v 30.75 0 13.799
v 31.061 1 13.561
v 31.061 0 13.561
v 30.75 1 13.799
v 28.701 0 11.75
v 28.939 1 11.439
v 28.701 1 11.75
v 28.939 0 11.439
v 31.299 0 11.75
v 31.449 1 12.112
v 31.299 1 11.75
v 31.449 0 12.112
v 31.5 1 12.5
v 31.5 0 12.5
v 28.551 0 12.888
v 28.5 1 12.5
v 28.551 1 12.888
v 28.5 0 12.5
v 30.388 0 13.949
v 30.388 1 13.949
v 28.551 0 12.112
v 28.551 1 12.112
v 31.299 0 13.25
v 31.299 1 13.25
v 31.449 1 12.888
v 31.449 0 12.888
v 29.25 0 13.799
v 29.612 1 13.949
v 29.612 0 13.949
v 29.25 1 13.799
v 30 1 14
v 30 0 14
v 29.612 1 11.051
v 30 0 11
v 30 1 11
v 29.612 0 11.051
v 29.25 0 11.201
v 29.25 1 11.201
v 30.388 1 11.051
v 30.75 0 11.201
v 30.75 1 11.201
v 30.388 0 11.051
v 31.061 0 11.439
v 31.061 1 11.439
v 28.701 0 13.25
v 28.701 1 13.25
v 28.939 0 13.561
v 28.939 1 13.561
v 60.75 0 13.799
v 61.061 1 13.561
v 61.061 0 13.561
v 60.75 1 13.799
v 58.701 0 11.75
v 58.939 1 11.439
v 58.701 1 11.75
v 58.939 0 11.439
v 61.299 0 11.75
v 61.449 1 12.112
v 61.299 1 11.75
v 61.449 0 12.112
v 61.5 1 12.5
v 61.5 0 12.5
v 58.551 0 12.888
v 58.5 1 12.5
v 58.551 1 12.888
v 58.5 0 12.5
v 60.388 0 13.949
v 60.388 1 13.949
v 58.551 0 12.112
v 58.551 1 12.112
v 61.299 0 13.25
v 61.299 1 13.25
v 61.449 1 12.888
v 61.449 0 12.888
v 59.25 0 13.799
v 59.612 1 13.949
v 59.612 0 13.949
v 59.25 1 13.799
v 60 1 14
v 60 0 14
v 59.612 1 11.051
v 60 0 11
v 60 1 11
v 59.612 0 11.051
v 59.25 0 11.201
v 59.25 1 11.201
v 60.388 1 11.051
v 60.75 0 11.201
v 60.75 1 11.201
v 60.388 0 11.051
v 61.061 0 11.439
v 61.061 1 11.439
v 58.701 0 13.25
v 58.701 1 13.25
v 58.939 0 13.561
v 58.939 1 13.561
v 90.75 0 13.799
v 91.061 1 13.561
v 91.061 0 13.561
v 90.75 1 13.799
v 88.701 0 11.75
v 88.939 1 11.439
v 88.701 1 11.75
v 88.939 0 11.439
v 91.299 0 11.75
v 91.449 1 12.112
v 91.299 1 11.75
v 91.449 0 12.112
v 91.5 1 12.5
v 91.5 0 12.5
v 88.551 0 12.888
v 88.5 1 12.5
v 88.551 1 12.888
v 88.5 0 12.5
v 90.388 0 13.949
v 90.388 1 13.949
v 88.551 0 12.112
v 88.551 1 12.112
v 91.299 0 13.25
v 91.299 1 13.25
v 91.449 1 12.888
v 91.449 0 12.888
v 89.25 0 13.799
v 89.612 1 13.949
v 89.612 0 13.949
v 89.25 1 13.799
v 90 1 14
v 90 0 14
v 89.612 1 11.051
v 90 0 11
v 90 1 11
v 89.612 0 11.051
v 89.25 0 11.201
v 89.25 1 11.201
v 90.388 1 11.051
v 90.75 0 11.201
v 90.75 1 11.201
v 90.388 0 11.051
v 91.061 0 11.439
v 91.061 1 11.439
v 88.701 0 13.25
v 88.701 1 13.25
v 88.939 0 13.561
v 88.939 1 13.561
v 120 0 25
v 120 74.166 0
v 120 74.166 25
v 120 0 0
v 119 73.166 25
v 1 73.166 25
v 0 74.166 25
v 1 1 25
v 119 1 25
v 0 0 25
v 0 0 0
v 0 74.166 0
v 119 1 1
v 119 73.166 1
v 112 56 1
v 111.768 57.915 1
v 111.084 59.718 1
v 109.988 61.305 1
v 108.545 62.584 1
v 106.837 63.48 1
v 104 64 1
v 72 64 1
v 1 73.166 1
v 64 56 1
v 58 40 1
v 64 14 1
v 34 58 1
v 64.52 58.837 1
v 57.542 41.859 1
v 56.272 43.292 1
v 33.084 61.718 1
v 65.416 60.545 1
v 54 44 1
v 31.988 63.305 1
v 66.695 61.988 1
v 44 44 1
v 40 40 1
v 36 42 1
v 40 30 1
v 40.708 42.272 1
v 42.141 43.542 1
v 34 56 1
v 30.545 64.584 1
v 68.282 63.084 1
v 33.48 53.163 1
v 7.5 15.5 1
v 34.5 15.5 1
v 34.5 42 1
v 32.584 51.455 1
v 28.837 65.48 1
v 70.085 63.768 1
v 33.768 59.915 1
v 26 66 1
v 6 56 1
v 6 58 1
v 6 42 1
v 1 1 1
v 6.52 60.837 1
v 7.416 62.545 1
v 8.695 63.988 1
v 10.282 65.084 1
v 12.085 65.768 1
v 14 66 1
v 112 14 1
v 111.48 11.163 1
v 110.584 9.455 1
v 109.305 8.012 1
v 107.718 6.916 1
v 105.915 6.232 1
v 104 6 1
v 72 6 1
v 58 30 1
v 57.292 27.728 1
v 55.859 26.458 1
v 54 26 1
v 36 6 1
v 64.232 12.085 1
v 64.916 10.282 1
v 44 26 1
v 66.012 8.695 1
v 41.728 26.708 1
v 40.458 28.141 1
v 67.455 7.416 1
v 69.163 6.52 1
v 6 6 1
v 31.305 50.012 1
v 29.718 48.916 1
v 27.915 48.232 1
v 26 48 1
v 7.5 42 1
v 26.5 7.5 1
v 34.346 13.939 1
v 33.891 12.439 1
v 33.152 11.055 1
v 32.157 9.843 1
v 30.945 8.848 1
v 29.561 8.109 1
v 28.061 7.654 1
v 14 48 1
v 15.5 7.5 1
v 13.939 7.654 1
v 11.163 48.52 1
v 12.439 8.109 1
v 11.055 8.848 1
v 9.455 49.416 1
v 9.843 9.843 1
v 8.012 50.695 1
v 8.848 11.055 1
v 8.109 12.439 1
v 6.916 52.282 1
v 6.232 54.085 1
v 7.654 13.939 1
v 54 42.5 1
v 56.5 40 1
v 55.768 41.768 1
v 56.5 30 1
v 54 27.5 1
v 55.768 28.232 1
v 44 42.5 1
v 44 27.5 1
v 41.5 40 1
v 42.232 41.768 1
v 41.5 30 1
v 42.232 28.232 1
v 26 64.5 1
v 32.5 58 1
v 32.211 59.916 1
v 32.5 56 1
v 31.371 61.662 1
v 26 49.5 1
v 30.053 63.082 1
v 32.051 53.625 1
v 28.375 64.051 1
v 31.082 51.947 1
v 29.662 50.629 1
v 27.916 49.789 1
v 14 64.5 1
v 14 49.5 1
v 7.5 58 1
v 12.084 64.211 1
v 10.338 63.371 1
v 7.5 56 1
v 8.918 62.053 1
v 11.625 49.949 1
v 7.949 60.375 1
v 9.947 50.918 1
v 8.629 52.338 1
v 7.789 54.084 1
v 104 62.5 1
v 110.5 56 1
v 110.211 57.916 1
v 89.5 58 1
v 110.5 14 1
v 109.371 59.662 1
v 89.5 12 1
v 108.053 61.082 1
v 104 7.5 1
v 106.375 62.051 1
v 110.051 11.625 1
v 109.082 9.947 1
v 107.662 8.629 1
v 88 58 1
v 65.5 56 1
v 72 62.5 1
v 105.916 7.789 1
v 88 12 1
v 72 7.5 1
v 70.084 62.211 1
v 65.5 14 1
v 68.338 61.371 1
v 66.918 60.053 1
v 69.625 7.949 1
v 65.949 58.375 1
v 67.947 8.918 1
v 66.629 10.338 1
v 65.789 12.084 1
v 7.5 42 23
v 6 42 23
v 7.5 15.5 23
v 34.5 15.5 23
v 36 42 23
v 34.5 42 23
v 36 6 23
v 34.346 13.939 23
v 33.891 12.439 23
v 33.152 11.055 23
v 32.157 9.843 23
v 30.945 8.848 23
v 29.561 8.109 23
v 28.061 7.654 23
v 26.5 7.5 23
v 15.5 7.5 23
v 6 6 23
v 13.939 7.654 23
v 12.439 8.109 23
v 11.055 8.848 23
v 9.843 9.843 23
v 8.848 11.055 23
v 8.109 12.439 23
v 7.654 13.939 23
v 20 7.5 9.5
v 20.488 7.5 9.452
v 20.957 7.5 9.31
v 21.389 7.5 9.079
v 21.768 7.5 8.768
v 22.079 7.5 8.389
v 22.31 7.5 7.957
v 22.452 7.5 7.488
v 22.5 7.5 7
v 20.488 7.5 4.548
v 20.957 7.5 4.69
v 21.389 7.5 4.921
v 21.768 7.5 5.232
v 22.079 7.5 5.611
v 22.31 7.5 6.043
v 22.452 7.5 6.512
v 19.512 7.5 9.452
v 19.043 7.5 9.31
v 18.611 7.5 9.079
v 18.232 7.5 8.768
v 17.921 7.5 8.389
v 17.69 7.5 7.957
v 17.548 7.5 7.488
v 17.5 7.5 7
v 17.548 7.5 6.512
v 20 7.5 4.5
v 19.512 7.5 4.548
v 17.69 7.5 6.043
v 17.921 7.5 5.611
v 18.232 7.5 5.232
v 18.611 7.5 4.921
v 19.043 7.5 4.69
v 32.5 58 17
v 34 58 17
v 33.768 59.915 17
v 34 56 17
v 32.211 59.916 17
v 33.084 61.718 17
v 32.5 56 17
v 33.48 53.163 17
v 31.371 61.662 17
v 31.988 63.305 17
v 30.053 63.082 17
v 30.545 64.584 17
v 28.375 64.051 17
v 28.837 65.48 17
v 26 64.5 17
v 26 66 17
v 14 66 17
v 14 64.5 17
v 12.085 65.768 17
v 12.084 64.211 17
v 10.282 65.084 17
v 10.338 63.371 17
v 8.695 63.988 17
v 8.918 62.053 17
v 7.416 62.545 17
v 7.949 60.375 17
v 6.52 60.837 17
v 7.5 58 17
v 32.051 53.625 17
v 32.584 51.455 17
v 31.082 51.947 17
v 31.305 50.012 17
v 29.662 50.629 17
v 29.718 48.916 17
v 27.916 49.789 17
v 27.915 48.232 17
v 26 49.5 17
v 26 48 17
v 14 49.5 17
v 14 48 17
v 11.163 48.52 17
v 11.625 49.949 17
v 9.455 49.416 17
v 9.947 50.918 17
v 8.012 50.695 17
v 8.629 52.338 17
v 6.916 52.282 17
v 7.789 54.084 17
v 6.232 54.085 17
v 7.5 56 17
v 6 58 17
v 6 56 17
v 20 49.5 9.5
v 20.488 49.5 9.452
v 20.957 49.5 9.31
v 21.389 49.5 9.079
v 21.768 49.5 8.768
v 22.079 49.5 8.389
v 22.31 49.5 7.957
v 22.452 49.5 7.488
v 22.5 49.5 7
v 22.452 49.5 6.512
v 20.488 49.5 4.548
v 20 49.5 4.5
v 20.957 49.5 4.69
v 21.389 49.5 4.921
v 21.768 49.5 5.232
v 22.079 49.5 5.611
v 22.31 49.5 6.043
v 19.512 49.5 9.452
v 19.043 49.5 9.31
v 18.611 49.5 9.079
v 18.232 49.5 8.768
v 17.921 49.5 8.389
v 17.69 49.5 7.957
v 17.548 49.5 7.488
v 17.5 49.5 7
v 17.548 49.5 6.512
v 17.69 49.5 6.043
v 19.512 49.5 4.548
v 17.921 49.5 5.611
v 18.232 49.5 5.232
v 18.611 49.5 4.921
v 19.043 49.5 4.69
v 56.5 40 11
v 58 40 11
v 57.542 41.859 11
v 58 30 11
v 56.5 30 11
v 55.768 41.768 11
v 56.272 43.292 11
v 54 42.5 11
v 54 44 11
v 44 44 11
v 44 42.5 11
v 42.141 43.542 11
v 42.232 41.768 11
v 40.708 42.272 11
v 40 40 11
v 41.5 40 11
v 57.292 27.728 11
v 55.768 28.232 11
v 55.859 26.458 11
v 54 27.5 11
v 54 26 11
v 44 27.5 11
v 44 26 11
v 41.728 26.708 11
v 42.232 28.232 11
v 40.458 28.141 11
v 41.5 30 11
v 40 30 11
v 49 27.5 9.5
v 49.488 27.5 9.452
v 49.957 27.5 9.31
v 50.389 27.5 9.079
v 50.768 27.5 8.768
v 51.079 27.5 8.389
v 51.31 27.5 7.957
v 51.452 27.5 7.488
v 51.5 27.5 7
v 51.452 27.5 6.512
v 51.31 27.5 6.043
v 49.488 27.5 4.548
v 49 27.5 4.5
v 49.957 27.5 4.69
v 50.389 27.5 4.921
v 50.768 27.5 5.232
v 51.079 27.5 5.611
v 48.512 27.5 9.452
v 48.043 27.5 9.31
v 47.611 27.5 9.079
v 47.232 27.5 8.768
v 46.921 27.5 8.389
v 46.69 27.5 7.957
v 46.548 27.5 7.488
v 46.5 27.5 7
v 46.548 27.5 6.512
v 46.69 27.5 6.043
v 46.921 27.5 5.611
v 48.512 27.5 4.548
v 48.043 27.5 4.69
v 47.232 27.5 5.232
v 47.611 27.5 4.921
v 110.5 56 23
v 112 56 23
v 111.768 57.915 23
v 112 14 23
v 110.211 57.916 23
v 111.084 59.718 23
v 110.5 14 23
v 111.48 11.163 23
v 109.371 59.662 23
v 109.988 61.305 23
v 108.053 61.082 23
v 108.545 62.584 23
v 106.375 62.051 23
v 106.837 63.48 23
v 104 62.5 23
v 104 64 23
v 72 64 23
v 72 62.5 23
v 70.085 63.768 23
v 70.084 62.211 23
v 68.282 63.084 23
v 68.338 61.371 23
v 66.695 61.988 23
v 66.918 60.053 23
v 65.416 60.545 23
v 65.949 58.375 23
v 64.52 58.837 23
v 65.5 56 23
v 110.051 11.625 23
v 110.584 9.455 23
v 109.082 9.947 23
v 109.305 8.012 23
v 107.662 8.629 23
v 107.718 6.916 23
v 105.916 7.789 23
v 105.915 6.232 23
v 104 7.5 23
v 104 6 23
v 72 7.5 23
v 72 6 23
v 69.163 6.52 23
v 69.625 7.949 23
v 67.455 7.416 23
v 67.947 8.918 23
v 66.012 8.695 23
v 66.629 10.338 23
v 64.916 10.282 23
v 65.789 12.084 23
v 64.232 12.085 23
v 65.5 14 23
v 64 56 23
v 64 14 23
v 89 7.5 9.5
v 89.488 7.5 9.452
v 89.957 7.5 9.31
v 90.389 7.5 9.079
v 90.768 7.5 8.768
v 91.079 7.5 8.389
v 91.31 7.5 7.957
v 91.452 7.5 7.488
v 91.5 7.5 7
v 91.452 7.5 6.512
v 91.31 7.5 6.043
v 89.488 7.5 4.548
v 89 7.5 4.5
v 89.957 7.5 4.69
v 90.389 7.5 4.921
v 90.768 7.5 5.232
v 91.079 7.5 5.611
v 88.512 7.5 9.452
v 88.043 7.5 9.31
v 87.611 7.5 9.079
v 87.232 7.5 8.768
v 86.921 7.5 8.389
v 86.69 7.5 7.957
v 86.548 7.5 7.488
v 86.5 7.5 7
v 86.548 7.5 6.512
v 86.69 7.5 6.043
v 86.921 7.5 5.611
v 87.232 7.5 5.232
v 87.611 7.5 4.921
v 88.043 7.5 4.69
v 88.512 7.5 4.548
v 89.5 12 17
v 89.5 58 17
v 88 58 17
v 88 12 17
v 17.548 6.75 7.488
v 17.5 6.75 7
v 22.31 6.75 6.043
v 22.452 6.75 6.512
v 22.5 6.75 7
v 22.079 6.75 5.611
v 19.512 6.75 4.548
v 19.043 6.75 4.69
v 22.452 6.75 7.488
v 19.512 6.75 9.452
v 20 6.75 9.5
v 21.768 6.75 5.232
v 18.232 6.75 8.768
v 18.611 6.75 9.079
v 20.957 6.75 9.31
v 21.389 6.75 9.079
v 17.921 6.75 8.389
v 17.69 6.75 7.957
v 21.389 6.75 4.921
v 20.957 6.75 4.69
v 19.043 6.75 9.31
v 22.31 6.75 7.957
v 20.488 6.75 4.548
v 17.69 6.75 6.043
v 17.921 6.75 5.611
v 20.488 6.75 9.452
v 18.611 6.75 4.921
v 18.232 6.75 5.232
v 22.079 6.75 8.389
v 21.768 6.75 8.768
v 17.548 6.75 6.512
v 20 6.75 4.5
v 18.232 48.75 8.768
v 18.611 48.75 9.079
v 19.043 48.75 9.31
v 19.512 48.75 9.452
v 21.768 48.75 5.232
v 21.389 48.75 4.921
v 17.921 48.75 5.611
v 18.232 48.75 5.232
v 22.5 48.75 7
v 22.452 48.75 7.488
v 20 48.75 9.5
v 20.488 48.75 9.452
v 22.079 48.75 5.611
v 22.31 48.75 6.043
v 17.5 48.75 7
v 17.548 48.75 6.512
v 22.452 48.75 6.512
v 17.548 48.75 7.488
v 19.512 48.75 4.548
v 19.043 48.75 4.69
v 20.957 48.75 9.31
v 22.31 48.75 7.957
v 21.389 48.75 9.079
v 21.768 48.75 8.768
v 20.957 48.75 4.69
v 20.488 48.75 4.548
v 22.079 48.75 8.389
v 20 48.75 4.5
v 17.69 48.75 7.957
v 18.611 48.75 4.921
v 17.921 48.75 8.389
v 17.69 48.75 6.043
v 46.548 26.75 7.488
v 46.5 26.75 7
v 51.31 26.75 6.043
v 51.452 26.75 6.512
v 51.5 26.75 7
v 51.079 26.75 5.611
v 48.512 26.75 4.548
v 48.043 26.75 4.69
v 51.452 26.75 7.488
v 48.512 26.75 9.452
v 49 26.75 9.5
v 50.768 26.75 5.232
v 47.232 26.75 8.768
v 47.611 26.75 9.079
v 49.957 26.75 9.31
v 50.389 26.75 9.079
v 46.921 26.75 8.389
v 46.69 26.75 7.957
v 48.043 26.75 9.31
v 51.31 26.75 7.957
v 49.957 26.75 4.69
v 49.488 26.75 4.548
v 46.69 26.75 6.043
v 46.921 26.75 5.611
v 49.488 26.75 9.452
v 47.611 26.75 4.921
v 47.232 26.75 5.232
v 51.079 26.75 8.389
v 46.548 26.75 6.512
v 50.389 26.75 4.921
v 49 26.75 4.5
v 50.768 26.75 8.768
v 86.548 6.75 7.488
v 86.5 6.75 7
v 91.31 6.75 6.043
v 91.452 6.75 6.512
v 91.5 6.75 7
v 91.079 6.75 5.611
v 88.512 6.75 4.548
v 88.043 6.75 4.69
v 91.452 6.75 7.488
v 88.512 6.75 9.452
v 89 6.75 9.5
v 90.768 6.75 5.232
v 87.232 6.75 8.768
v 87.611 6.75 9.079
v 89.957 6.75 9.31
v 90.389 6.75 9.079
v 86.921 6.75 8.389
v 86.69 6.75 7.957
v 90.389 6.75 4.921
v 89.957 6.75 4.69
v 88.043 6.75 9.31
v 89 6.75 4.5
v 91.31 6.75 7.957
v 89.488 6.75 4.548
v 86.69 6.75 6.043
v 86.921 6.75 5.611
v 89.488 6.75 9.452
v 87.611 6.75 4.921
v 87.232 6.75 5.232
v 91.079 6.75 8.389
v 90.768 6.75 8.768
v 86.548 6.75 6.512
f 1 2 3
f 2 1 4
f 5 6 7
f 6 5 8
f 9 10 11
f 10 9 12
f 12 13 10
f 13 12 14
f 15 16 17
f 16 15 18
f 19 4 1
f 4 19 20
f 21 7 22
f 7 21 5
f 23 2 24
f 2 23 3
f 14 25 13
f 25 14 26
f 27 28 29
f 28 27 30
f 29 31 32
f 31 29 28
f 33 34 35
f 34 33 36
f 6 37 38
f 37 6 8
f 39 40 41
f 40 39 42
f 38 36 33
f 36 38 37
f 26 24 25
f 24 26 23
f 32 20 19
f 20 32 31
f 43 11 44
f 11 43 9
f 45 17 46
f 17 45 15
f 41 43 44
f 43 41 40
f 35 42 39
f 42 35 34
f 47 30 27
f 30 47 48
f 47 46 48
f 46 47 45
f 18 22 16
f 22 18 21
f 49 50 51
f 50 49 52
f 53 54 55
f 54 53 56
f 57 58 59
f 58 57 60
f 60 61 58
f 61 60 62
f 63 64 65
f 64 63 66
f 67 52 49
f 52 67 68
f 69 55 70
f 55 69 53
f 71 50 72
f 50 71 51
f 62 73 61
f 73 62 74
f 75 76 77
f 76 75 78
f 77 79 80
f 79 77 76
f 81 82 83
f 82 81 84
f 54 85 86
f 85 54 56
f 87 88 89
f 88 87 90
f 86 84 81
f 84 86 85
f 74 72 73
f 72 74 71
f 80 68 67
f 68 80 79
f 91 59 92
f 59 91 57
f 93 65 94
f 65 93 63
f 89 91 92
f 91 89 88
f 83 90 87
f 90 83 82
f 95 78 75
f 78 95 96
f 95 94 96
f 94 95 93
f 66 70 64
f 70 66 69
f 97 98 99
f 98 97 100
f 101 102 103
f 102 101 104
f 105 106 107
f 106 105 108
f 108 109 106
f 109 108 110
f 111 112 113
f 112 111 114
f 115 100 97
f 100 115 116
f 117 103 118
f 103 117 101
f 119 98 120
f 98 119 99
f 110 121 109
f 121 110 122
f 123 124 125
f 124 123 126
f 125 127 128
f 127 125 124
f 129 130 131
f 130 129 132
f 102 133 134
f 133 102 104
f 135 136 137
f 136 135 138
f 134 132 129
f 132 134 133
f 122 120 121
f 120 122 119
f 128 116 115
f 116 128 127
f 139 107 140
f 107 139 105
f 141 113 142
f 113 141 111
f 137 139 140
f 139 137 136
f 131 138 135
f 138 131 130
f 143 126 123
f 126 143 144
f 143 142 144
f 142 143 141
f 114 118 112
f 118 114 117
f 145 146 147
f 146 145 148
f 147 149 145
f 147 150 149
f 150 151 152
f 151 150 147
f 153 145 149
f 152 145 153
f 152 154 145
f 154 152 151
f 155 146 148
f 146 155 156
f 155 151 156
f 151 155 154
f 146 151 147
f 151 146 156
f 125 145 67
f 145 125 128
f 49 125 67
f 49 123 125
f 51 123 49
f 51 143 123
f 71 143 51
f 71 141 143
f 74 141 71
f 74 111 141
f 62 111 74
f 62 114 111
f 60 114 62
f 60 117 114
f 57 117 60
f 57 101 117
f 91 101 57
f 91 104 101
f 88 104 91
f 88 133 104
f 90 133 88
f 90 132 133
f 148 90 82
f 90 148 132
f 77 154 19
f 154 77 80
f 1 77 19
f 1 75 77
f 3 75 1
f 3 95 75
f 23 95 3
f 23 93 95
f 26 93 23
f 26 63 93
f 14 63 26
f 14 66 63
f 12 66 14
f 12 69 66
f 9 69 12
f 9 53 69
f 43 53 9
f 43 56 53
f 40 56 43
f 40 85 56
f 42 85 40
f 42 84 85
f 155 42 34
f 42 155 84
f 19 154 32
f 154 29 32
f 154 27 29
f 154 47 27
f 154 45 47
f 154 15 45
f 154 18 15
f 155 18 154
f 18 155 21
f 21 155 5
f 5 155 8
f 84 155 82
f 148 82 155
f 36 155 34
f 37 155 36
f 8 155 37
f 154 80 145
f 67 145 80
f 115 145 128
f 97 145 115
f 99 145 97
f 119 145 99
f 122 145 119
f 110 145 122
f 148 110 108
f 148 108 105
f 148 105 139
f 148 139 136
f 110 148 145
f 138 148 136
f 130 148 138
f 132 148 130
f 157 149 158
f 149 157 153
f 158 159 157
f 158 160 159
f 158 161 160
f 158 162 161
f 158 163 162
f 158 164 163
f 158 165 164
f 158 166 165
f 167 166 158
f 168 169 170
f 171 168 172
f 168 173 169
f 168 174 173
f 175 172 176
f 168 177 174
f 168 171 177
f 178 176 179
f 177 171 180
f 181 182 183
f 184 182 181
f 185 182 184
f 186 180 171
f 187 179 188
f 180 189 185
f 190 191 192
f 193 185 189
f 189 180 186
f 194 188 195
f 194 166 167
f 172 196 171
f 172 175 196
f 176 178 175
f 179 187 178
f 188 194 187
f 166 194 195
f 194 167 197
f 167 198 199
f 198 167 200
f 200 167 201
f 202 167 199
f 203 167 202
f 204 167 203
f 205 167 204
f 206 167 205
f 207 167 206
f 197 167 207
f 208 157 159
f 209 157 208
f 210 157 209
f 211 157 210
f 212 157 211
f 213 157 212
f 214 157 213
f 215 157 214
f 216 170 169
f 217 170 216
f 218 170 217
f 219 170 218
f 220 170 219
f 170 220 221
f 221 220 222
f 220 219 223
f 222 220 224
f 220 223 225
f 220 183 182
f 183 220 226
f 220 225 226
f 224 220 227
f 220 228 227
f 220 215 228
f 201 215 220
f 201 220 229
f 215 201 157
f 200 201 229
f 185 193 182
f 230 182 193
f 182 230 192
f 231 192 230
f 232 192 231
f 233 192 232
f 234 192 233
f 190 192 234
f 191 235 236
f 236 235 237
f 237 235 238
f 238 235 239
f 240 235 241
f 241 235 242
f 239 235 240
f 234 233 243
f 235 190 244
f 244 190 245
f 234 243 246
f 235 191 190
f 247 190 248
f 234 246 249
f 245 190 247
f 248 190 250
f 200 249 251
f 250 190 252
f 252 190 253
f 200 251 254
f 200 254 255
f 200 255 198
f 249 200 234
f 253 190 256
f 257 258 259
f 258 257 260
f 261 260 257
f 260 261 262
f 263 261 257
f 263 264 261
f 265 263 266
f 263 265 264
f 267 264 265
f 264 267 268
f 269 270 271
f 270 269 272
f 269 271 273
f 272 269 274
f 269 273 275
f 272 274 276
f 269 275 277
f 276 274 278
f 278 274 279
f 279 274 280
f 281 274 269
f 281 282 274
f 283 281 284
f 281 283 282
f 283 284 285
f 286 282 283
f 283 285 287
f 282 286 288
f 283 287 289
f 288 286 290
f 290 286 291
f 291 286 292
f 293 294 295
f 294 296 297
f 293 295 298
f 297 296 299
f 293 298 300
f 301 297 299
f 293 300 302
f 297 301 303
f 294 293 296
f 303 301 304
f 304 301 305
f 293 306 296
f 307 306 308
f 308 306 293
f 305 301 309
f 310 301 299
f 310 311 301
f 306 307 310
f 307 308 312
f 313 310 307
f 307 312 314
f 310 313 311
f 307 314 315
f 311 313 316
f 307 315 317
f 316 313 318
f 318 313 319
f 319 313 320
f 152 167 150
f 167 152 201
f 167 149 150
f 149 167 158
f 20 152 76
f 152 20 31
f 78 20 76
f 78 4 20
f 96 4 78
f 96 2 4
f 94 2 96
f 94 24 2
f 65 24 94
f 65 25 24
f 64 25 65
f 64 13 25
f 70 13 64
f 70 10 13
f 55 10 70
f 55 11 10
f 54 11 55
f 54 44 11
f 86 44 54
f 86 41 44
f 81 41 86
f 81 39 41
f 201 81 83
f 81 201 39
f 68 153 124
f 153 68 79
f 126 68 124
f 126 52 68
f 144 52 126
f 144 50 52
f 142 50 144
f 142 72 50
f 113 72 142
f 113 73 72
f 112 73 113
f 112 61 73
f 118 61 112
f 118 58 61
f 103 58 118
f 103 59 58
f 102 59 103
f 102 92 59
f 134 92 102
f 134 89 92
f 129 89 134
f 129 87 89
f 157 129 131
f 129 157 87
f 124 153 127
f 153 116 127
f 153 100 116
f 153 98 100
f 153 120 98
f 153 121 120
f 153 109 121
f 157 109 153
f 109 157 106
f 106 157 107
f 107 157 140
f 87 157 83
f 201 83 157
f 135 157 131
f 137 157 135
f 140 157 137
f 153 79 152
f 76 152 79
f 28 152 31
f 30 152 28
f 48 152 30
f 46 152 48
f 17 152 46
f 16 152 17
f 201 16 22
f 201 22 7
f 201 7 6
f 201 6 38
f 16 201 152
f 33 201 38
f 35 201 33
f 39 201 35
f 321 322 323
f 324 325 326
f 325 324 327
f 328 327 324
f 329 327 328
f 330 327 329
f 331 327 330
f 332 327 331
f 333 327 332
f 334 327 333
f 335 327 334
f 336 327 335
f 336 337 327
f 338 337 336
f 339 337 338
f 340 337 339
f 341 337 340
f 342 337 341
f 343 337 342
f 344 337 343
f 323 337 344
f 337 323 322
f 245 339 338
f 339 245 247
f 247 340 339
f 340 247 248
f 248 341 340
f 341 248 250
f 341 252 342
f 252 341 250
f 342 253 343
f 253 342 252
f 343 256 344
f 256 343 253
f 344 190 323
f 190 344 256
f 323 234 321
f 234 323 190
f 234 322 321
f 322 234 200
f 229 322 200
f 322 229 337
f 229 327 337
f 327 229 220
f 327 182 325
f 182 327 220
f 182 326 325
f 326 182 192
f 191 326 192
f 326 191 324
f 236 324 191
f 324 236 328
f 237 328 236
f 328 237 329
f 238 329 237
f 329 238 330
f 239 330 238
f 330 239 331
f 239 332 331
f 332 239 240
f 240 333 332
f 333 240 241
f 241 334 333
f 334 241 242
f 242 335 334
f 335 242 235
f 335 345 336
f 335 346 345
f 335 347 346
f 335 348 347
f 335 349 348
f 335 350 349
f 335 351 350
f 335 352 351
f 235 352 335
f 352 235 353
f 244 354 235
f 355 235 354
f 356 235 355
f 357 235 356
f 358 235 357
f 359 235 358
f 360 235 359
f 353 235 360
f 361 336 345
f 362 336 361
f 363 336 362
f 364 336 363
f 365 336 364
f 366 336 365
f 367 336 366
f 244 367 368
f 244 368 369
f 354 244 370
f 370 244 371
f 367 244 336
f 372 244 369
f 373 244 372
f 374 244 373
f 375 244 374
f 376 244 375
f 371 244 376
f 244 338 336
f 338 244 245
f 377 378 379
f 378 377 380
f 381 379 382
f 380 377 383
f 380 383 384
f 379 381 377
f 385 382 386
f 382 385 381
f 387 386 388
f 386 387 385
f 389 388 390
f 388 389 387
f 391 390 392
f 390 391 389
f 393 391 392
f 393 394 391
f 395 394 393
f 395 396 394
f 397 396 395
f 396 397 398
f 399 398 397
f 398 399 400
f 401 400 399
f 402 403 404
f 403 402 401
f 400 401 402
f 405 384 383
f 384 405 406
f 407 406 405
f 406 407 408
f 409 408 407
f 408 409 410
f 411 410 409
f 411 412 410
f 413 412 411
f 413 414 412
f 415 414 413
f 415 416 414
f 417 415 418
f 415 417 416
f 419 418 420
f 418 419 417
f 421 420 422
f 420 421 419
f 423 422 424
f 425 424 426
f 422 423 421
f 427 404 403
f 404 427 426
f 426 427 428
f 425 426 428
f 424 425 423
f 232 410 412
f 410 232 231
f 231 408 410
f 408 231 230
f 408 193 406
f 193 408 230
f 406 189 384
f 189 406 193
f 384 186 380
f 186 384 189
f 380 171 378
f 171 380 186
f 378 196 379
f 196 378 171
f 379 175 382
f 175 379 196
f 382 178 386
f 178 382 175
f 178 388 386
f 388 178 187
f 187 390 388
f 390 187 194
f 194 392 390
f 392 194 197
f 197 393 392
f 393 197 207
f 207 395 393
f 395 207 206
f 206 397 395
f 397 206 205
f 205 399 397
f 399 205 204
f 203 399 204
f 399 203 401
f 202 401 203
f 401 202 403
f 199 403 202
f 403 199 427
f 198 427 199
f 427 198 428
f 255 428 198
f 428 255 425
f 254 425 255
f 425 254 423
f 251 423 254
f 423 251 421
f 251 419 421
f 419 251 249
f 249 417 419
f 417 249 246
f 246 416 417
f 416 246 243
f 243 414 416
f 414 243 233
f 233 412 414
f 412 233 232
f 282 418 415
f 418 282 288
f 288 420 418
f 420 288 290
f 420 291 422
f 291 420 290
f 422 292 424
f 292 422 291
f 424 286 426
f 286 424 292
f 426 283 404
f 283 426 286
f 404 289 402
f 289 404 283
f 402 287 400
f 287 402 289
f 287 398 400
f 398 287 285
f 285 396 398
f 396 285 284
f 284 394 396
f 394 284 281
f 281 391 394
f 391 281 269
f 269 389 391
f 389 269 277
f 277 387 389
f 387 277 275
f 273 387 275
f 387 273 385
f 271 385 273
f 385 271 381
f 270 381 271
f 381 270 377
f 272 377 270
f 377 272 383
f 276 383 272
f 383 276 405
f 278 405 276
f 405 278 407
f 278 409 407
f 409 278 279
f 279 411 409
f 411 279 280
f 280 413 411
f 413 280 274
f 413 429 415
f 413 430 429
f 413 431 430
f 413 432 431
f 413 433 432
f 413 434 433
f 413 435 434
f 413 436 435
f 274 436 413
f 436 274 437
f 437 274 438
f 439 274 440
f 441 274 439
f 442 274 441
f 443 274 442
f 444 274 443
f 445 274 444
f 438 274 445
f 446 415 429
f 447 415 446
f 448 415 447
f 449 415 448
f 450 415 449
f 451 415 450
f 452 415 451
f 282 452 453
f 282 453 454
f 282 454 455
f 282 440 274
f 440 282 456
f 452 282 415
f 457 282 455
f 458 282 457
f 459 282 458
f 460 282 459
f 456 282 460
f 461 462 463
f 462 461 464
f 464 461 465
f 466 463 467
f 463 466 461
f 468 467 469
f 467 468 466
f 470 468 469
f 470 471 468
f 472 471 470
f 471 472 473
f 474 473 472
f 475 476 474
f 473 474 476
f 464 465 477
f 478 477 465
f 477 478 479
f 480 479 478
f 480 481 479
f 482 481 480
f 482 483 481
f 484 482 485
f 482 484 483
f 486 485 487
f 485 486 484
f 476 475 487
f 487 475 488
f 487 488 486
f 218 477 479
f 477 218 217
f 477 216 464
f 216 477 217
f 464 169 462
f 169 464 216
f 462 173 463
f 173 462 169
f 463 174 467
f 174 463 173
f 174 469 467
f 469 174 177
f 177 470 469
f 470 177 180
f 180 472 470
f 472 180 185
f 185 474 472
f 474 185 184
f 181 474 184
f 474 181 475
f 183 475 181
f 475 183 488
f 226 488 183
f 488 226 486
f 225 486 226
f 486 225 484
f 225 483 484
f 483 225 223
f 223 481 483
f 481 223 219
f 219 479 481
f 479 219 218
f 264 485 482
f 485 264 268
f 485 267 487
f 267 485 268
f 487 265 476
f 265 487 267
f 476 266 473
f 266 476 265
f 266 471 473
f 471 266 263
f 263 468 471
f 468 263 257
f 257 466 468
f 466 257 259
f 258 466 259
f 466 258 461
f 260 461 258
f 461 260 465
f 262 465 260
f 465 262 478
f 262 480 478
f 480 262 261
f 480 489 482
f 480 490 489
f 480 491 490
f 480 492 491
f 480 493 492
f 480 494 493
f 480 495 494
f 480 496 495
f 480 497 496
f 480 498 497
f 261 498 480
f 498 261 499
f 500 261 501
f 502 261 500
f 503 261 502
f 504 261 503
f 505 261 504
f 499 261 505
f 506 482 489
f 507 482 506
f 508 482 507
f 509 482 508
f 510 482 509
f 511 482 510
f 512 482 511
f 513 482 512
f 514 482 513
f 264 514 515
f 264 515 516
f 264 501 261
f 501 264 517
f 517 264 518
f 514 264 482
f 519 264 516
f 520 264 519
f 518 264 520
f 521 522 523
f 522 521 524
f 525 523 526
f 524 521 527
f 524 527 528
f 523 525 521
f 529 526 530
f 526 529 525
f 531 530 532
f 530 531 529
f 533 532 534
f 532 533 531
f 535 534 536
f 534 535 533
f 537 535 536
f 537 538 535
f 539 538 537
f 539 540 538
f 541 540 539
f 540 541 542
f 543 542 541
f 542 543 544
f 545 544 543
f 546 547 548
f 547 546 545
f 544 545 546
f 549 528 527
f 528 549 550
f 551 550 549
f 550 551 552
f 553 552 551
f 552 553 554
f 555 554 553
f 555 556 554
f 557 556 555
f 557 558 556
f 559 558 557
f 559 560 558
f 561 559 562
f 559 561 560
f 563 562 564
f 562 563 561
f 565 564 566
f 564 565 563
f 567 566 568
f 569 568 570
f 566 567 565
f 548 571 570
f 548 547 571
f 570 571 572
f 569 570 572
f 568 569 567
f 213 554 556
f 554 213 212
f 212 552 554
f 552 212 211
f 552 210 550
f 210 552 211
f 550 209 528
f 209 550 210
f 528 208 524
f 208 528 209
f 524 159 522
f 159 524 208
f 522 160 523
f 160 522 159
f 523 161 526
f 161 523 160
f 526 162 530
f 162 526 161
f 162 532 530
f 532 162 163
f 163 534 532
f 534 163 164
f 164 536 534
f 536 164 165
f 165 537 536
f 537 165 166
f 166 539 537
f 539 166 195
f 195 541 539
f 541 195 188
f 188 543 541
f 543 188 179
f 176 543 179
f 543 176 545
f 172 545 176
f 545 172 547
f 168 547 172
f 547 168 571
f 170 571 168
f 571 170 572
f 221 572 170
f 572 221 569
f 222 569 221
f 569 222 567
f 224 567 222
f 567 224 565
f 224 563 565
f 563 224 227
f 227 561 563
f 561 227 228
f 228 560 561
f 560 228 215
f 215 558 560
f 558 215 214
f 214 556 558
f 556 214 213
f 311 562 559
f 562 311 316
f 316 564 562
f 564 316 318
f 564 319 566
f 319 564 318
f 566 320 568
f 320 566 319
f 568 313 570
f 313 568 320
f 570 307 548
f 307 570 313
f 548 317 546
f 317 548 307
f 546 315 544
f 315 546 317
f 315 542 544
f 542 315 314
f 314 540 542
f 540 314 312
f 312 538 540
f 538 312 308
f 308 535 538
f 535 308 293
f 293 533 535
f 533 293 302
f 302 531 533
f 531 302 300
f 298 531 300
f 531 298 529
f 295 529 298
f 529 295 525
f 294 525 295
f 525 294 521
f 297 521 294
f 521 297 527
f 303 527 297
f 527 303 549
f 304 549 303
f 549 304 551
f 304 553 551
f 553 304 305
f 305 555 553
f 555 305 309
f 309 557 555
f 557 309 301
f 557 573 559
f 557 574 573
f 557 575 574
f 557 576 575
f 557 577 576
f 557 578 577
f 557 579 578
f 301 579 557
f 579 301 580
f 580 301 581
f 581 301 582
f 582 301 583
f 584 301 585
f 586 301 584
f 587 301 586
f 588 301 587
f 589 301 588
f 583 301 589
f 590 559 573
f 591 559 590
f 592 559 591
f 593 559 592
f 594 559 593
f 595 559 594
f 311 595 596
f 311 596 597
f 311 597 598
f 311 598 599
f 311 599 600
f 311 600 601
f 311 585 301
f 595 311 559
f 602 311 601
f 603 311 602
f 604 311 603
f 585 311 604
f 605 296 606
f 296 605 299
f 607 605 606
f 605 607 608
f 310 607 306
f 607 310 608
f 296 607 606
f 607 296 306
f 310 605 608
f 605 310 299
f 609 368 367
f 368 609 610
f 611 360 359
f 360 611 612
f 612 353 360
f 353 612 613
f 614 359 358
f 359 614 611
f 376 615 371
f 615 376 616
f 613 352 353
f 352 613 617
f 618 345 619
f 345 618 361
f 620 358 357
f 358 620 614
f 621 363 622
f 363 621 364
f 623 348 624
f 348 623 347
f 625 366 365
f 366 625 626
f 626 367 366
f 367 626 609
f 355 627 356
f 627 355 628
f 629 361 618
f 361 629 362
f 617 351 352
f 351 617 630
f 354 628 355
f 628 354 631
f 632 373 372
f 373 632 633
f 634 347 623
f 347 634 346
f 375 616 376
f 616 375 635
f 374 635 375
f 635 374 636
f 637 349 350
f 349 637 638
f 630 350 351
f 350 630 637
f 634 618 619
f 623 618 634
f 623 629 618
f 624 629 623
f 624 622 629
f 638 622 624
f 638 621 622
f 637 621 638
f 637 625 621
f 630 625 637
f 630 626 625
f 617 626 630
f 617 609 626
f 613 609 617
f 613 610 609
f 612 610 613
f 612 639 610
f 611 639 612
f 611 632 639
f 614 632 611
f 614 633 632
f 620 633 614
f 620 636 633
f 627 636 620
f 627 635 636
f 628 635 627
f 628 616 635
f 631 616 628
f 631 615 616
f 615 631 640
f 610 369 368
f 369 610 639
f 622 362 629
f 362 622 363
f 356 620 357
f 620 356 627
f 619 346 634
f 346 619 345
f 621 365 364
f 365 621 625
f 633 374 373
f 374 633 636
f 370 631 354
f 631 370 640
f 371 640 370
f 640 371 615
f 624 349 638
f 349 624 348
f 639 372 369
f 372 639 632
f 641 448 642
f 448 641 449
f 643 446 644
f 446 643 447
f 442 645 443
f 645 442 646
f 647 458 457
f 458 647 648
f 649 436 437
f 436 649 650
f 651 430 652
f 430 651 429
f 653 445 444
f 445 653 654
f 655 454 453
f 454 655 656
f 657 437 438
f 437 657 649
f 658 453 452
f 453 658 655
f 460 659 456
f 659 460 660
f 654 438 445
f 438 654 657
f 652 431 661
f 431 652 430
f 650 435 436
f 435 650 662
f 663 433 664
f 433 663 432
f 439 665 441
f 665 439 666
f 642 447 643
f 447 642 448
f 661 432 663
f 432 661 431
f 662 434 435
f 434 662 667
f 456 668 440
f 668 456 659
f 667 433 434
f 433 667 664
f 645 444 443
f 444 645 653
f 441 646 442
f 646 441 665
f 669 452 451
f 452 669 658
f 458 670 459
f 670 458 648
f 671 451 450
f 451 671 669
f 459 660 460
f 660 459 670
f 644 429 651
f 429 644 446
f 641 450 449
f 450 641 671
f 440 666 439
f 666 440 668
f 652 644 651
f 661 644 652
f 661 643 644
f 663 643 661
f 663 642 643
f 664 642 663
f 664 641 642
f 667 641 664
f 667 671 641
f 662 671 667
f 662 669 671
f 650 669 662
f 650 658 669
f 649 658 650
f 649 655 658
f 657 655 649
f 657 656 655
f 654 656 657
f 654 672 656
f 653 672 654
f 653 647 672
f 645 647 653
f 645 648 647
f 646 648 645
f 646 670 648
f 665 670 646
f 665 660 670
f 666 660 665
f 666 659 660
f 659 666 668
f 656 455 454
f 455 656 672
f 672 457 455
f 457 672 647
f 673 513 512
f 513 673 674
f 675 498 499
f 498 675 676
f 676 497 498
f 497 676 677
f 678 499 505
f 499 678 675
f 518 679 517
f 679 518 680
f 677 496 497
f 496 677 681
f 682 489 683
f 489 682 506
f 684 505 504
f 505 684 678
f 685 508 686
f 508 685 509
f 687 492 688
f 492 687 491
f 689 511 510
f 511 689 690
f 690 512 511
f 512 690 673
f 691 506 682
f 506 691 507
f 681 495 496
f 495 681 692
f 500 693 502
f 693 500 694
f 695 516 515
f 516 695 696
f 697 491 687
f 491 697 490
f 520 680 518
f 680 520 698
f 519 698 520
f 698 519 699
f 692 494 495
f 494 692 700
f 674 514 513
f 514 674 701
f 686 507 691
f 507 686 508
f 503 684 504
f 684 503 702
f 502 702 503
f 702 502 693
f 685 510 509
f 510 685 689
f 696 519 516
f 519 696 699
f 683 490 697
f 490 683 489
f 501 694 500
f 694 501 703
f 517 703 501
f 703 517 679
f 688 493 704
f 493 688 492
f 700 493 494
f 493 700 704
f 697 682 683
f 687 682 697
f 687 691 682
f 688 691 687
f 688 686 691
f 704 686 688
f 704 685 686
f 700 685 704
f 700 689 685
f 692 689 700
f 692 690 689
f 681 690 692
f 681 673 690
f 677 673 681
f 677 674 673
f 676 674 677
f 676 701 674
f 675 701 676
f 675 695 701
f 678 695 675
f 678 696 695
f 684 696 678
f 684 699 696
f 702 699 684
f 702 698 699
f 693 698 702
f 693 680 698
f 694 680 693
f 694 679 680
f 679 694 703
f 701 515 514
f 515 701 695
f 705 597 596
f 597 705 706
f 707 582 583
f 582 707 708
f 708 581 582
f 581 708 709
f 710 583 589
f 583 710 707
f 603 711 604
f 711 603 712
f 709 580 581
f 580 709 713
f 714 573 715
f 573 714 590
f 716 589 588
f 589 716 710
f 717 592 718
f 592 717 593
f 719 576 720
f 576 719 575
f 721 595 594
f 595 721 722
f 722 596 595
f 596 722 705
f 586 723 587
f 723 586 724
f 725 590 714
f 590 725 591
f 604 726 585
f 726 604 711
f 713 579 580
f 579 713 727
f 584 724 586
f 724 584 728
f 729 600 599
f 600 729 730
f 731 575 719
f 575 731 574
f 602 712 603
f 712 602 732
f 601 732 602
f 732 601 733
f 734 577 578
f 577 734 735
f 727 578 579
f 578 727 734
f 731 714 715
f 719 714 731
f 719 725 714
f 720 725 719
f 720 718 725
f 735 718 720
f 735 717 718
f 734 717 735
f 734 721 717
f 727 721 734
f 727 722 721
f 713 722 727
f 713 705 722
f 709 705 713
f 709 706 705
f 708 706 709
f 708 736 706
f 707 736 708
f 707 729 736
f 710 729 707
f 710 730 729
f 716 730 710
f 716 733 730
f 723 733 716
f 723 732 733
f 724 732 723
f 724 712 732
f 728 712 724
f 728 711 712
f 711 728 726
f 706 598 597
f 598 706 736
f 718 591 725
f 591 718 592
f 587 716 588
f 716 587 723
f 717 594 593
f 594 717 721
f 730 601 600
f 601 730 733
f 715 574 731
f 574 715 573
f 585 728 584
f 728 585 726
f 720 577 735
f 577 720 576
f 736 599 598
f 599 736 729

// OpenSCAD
// Compartment Box with Internal Dividers - 10 Design Variations
// Change DESIGN_NUMBER (1-10) to switch between layouts

DESIGN_NUMBER = 1;  // <-- CHANGE THIS (1-10) to select design

// Main parameters
// Golden ratio: width / length = 1.618
box_width = 120;
box_length = box_width / 1.618;  // ≈ 74.17
box_depth = 25;
wall_thickness = 1;
divider_thickness = 1.5;

// Eno-style light control parameters
divider_height_tall = 22;      // Almost touches diffuser - clean separation
divider_height_medium = 16;    // Moderate glow
divider_height_short = 10;     // Brighter, more diffused

chamfer_size = 1.5;            // Softens light edges
mixing_gap = 2;                // Gap between dividers and walls for light bleed
mixing_hole_size = 0;          // Small tunnels between compartments

curve_radius = 8;

// Wire hole parameters
wire_hole_diameter = 3;
back_hole_count = 3;
internal_wire_hole_diameter = 5;  // Holes in dividers for routing wires

// ============== HELPER MODULES ==============

module wire_hole() {
    cylinder(h = wall_thickness + 2, d = wire_hole_diameter, $fn = 24);
}

// Internal wire hole for routing through dividers
module internal_wire_hole() {
    cylinder(h = divider_thickness + 2, d = internal_wire_hole_diameter, $fn = 32);
}

// Simple chamfered top bar
module chamfered_top(width, length, height, chamfer) {
    cube([width, length, height]);
}

// Rounded rect divider - simple flat top version
module rounded_rect_divider(width, length, height, radius) {
    r = max(0.1, radius);
    linear_extrude(height = height)
        difference() {
            offset(r = r) offset(r = -r) square([width, length]);
            translate([divider_thickness, divider_thickness])
                offset(r = max(0.1, r - divider_thickness))
                offset(r = -max(0.1, r - divider_thickness))
                    square([width - divider_thickness * 2, length - divider_thickness * 2]);
        }
}

// U-shape opening downward (closed at bottom)
module curved_u_divider(width, length, height, radius) {
    linear_extrude(height = height)
        difference() {
            square([width, length]);
            translate([divider_thickness + radius, divider_thickness, 0])
                square([width - divider_thickness * 2 - radius * 2, length]);
            translate([divider_thickness + radius, divider_thickness + radius, 0])
                circle(r = radius, $fn = 32);
            translate([width - divider_thickness - radius, divider_thickness + radius, 0])
                circle(r = radius, $fn = 32);
            translate([divider_thickness, divider_thickness + radius, 0])
                square([radius, length]);
            translate([width - divider_thickness - radius, divider_thickness + radius, 0])
                square([radius, length]);
        }
}

// U-shape opening upward (closed at top)
module curved_u_up(width, length, height, radius) {
    linear_extrude(height = height)
        difference() {
            square([width, length]);
            translate([divider_thickness + radius, -0.1, 0])
                square([width - divider_thickness * 2 - radius * 2, length - divider_thickness]);
            translate([divider_thickness + radius, length - divider_thickness - radius, 0])
                circle(r = radius, $fn = 32);
            translate([width - divider_thickness - radius, length - divider_thickness - radius, 0])
                circle(r = radius, $fn = 32);
            translate([divider_thickness, -0.1, 0])
                square([radius, length - divider_thickness - radius]);
            translate([width - divider_thickness - radius, -0.1, 0])
                square([radius, length - divider_thickness - radius]);
        }
}

// Light mixing hole - small tunnel at base for subtle color blending
module mixing_hole(len) {
    rotate([-90, 0, 0])
        cylinder(h = len, d = mixing_hole_size, $fn = 16);
}

// Outer box with mixing gaps (slightly inset dividers)
module outer_box() {
    difference() {
        cube([box_width, box_length, box_depth]);
        translate([wall_thickness, wall_thickness, wall_thickness])
            cube([box_width - wall_thickness * 2, box_length - wall_thickness * 2, box_depth]);
        // Wire holes in back
        for (i = [1 : back_hole_count]) {
            translate([box_width * i / (back_hole_count + 1), -1, box_depth / 2])
                rotate([-90, 0, 0])
                    wire_hole();
        }
    }
}

// ============== DESIGN 1: Original Layout with Depth Variation ==============
module design_1() {
    outer_box();
    g = mixing_gap;
    edge_margin = 5;  // Extra margin from box edges

    difference() {
        union() {
            // Bottom-left U-shape - TALL (clean separation)
            translate([wall_thickness + edge_margin, wall_thickness + edge_margin, wall_thickness])
                curved_u_divider(32 - g, 38 - g, divider_height_tall, curve_radius);

            // Top-left rounded rect - MEDIUM
            translate([wall_thickness + edge_margin, 48, wall_thickness])
                rounded_rect_divider(32 - g * 2, 20 - g, divider_height_medium, curve_radius);

            // Center small rounded square - SHORT (brightest)
            translate([40, 26, wall_thickness])
                rounded_rect_divider(18, 18, divider_height_short, 4);

            // Right large rounded rect - TALL with divider
            translate([64, wall_thickness + edge_margin, wall_thickness])
                rounded_rect_divider(50 - g, 62 - g * 2, divider_height_tall, curve_radius);
            translate([88, 12, wall_thickness])
                chamfered_top(divider_thickness, 46, divider_height_medium, chamfer_size);
        }
        // Wire holes in each shape
        translate([20, wall_thickness + edge_margin + divider_thickness/2, wall_thickness + 6])
            rotate([-90, 0, 0]) internal_wire_hole();  // Bottom-left U
        translate([20, 48 + divider_thickness/2, wall_thickness + 6])
            rotate([-90, 0, 0]) internal_wire_hole();  // Top-left rect
        translate([49, 26 + divider_thickness/2, wall_thickness + 6])
            rotate([-90, 0, 0]) internal_wire_hole();  // Center square
        translate([89, wall_thickness + edge_margin + divider_thickness/2, wall_thickness + 6])
            rotate([-90, 0, 0]) internal_wire_hole();  // Right rect
    }

    // Mixing holes between sections
    translate([38, 32, wall_thickness + 2])
        mixing_hole(4);
    translate([62, 37, wall_thickness + 2])
        mixing_hole(4);
}

// ============== DESIGN 2: Triple U with Gradient Heights ==============
module design_2() {
    outer_box();
    g = mixing_gap;

    difference() {
        union() {
            // Left U - TALL
            translate([wall_thickness + g, wall_thickness + g, wall_thickness])
                curved_u_divider(38 - g * 2, 68 - g * 2, divider_height_tall, 10);

            // Center U - MEDIUM
            translate([wall_thickness + 40, wall_thickness + g, wall_thickness])
                curved_u_divider(38 - g * 2, 68 - g * 2, divider_height_medium, 10);

            // Right U - SHORT (brightest)
            translate([wall_thickness + 80, wall_thickness + g, wall_thickness])
                curved_u_divider(38 - g * 2, 68 - g * 2, divider_height_short, 10);
        }
        // Wire holes in each U
        translate([20, wall_thickness + g + divider_thickness/2, wall_thickness + 6])
            rotate([-90, 0, 0]) internal_wire_hole();  // Left U
        translate([60, wall_thickness + g + divider_thickness/2, wall_thickness + 6])
            rotate([-90, 0, 0]) internal_wire_hole();  // Center U
        translate([100, wall_thickness + g + divider_thickness/2, wall_thickness + 6])
            rotate([-90, 0, 0]) internal_wire_hole();  // Right U
    }

    // Mixing holes between U's
    translate([39, 35, wall_thickness + 2])
        rotate([0, 90, 0]) cylinder(h = 3, d = mixing_hole_size, $fn = 16);
    translate([79, 35, wall_thickness + 2])
        rotate([0, 90, 0]) cylinder(h = 3, d = mixing_hole_size, $fn = 16);
}

// ============== DESIGN 3: Nested with Depth Gradient ==============
module design_3() {
    outer_box();

    difference() {
        union() {
            // Outer - TALL (darkest ring)
            translate([5, 5, wall_thickness])
                rounded_rect_divider(110, 60, divider_height_tall, 10);

            // Second - MEDIUM-TALL
            translate([15, 12, wall_thickness])
                rounded_rect_divider(90, 46, 19, 8);

            // Third - MEDIUM
            translate([25, 19, wall_thickness])
                rounded_rect_divider(70, 32, divider_height_medium, 6);

            // Inner - SHORT (brightest center)
            translate([35, 26, wall_thickness])
                rounded_rect_divider(50, 18, divider_height_short, 4);
        }
        // Wire holes in each nested rect
        translate([60, 5 + divider_thickness/2, wall_thickness + 6])
            rotate([-90, 0, 0]) internal_wire_hole();  // Outer
        translate([60, 12 + divider_thickness/2, wall_thickness + 6])
            rotate([-90, 0, 0]) internal_wire_hole();  // Second
        translate([60, 19 + divider_thickness/2, wall_thickness + 6])
            rotate([-90, 0, 0]) internal_wire_hole();  // Third
        translate([60, 26 + divider_thickness/2, wall_thickness + 6])
            rotate([-90, 0, 0]) internal_wire_hole();  // Inner
    }
}

// ============== DESIGN 4: Quadrants with Alternating Depths ==============
module design_4() {
    outer_box();
    g = mixing_gap;

    difference() {
        union() {
            // Top-left - TALL
            translate([2 + g, 2 + g, wall_thickness])
                rounded_rect_divider(56 - g * 2, 32 - g * 2, divider_height_tall, curve_radius);

            // Top-right - SHORT
            translate([62, 2 + g, wall_thickness])
                rounded_rect_divider(56 - g * 2, 32 - g * 2, divider_height_short, curve_radius);

            // Bottom-left - SHORT
            translate([2 + g, 36, wall_thickness])
                rounded_rect_divider(56 - g * 2, 32 - g * 2, divider_height_short, curve_radius);

            // Bottom-right - TALL
            translate([62, 36, wall_thickness])
                rounded_rect_divider(56 - g * 2, 32 - g * 2, divider_height_tall, curve_radius);
        }
        // Wire holes in each quadrant
        translate([30, 2 + g + divider_thickness/2, wall_thickness + 6])
            rotate([-90, 0, 0]) internal_wire_hole();  // Top-left
        translate([90, 2 + g + divider_thickness/2, wall_thickness + 6])
            rotate([-90, 0, 0]) internal_wire_hole();  // Top-right
        translate([30, 36 + divider_thickness/2, wall_thickness + 6])
            rotate([-90, 0, 0]) internal_wire_hole();  // Bottom-left
        translate([90, 36 + divider_thickness/2, wall_thickness + 6])
            rotate([-90, 0, 0]) internal_wire_hole();  // Bottom-right
    }

    // Mixing holes at corners
    translate([58, 35, wall_thickness + 2])
        mixing_hole(6);
}

// ============== DESIGN 5: Asymmetric with Depth Drama ==============
module design_5() {
    outer_box();
    g = mixing_gap;

    difference() {
        union() {
            // Large rounded rect left - TALL with horizontal divider
            translate([2 + g, 2 + g, wall_thickness])
                rounded_rect_divider(45 - g * 2, 66 - g * 2, divider_height_tall, 10);
            translate([12, 35, wall_thickness])
                chamfered_top(25, divider_thickness, divider_height_medium, chamfer_size);

            // Small rounded square top-right - SHORT (accent bright)
            translate([50, 2 + g, wall_thickness])
                rounded_rect_divider(25, 25 - g, divider_height_short, 6);

            // Tall narrow rounded rect far right - MEDIUM
            translate([78, 2 + g, wall_thickness])
                rounded_rect_divider(40 - g, 25 - g, divider_height_medium, 6);

            // U-shape bottom-right - TALL
            translate([50, 30, wall_thickness])
                curved_u_divider(68 - g, 38 - g, divider_height_tall, curve_radius);
        }
        // Wire holes in each shape
        translate([24, 2 + g + divider_thickness/2, wall_thickness + 6])
            rotate([-90, 0, 0]) internal_wire_hole();  // Left rect
        translate([62, 2 + g + divider_thickness/2, wall_thickness + 6])
            rotate([-90, 0, 0]) internal_wire_hole();  // Top-right square
        translate([98, 2 + g + divider_thickness/2, wall_thickness + 6])
            rotate([-90, 0, 0]) internal_wire_hole();  // Far right rect
        translate([84, 30 + divider_thickness/2, wall_thickness + 6])
            rotate([-90, 0, 0]) internal_wire_hole();  // Bottom-right U
    }
}

// ============== DESIGN 6: Spiral with Depth Flow ==============
module design_6() {
    outer_box();
    g = mixing_gap;

    difference() {
        union() {
            // Large outer U - TALL
            translate([2 + g, 2 + g, wall_thickness])
                curved_u_divider(50 - g, 66 - g * 2, divider_height_tall, 12);

            // Medium rounded rect top-right - MEDIUM
            translate([55, 2 + g, wall_thickness])
                rounded_rect_divider(63 - g, 30 - g, divider_height_medium, 8);

            // Small U bottom-right - SHORT
            translate([55, 36, wall_thickness])
                curved_u_up(40, 32 - g, divider_height_short, 8);

            // Tiny rounded square corner - MEDIUM (accent)
            translate([98, 40, wall_thickness])
                rounded_rect_divider(18 - g, 26 - g, divider_height_medium, 5);
        }
        // Wire holes in each shape
        translate([27, 2 + g + divider_thickness/2, wall_thickness + 6])
            rotate([-90, 0, 0]) internal_wire_hole();  // Outer U
        translate([86, 2 + g + divider_thickness/2, wall_thickness + 6])
            rotate([-90, 0, 0]) internal_wire_hole();  // Top-right rect
        translate([75, 36 + divider_thickness/2, wall_thickness + 6])
            rotate([-90, 0, 0]) internal_wire_hole();  // Bottom-right U
        translate([107, 40 + divider_thickness/2, wall_thickness + 6])
            rotate([-90, 0, 0]) internal_wire_hole();  // Corner square
    }

    // Mixing holes for color flow
    translate([53, 20, wall_thickness + 2])
        rotate([0, 90, 0]) cylinder(h = 4, d = mixing_hole_size, $fn = 16);
    translate([53, 50, wall_thickness + 2])
        rotate([0, 90, 0]) cylinder(h = 4, d = mixing_hole_size, $fn = 16);
}

// ============== DESIGN 7: U with Tracks - Eno Style ==============
module design_7() {
    outer_box();
    g = mixing_gap;

    // Large U-shape left - TALL (almost to diffuser)
    translate([2 + g, 2 + g, wall_thickness])
        curved_u_up(36 - g * 2, 66 - g * 2, divider_height_tall, 10);

    // Horizontal track top-right - SHORT (bright bar)
    translate([42, 2 + g, wall_thickness])
        rounded_rect_divider(76 - g, 20 - g, divider_height_short, 10);

    // Two rounded rects bottom-right - MEDIUM with dividers
    translate([42, 26, wall_thickness])
        rounded_rect_divider(35, 42 - g, divider_height_medium, curve_radius);
    translate([59, 34, wall_thickness])
        chamfered_top(divider_thickness, 26, divider_height_tall, chamfer_size);

    translate([81, 26, wall_thickness])
        rounded_rect_divider(37 - g, 42 - g, divider_height_medium, curve_radius);
    translate([99, 34, wall_thickness])
        chamfered_top(divider_thickness, 26, divider_height_tall, chamfer_size);
}

// ============== DESIGN 8: Interlocking U's with Depth Contrast ==============
module design_8() {
    outer_box();
    g = mixing_gap;

    // Left U opening up - TALL
    translate([2 + g, 2 + g, wall_thickness])
        curved_u_up(35 - g, 45 - g, divider_height_tall, 10);

    // Right U opening down - TALL
    translate([83, 23, wall_thickness])
        curved_u_divider(35 - g, 45 - g, divider_height_tall, 10);

    // Center rounded rect bridging - SHORT (focal bright point)
    translate([40, 20, wall_thickness])
        rounded_rect_divider(40, 30, divider_height_short, 8);

    // Top-right small rounded square - MEDIUM
    translate([85, 2 + g, wall_thickness])
        rounded_rect_divider(32 - g, 18 - g, divider_height_medium, 6);

    // Bottom-left small rounded square - MEDIUM
    translate([2 + g, 50, wall_thickness])
        rounded_rect_divider(35 - g, 18 - g, divider_height_medium, 6);

    // Mixing holes connecting center to U's
    translate([38, 35, wall_thickness + 2])
        rotate([0, 90, 0]) cylinder(h = 4, d = mixing_hole_size, $fn = 16);
    translate([78, 35, wall_thickness + 2])
        rotate([0, 90, 0]) cylinder(h = 4, d = mixing_hole_size, $fn = 16);
}

// ============== DESIGN 9: Double U Facing - Eno Gradient ==============
module design_9() {
    outer_box();
    g = mixing_gap;

    // U-shape opening up (bottom-left) - TALL
    translate([2 + g, 2 + g, wall_thickness])
        curved_u_up(56 - g * 2, 32 - g, divider_height_tall, 10);

    // U-shape opening down (top-left) - MEDIUM
    translate([2 + g, 36, wall_thickness])
        curved_u_divider(56 - g * 2, 32 - g, divider_height_medium, 10);

    // Large rounded rect right - SHORT with horizontal divider
    translate([62, 2 + g, wall_thickness])
        rounded_rect_divider(56 - g, 66 - g * 2, divider_height_short, 10);
    translate([72, 35, wall_thickness])
        chamfered_top(36, divider_thickness, divider_height_medium, chamfer_size);

    // Mixing hole between left sections
    translate([30, 34, wall_thickness + 2])
        mixing_hole(4);
}

// ============== DESIGN 10: Golden Ratio with Eno Depth ==============
module design_10() {
    outer_box();
    g = mixing_gap;

    // Golden ratio divisions
    lg_w = box_width / 1.618;
    sm_w = box_width - lg_w - 3;

    // Large rounded rect left - TALL (main chamber, clean separation)
    translate([2 + g, 2 + g, wall_thickness])
        rounded_rect_divider(lg_w - 2 - g, box_length - 4 - g * 2, divider_height_tall, 10);

    right_x = lg_w + 2;

    // Top-right tall U - MEDIUM
    translate([right_x, box_length / 2, wall_thickness])
        curved_u_up(sm_w - g, box_length / 2 - 3 - g, divider_height_medium, 8);

    // Bottom-right: two small squares - SHORT (bright accents)
    sq_size = (sm_w - 3) / 2;
    translate([right_x, 2 + g, wall_thickness])
        rounded_rect_divider(sq_size, box_length / 2 - 4 - g, divider_height_short, 6);

    translate([right_x + sq_size + 3, 2 + g, wall_thickness])
        rounded_rect_divider(sq_size - g, box_length / 2 - 4 - g, divider_height_short, 6);

    // Mixing holes for subtle color bleed
    translate([lg_w - 1, box_length / 2, wall_thickness + 2])
        rotate([0, 90, 0]) cylinder(h = 5, d = mixing_hole_size, $fn = 16);
    translate([right_x + sq_size - 1, box_length / 4, wall_thickness + 2])
        rotate([0, 90, 0]) cylinder(h = 5, d = mixing_hole_size, $fn = 16);
}

// ============== RENDER SELECTED DESIGN ==============
if (DESIGN_NUMBER == 1) design_1();
else if (DESIGN_NUMBER == 2) design_2();
else if (DESIGN_NUMBER == 3) design_3();
else if (DESIGN_NUMBER == 4) design_4();
else if (DESIGN_NUMBER == 5) design_5();
else if (DESIGN_NUMBER == 6) design_6();
else if (DESIGN_NUMBER == 7) design_7();
else if (DESIGN_NUMBER == 8) design_8();
else if (DESIGN_NUMBER == 9) design_9();
else if (DESIGN_NUMBER == 10) design_10();
else if (DESIGN_NUMBER == 11) design_11();
else if (DESIGN_NUMBER == 12) design_12();
else design_1();
